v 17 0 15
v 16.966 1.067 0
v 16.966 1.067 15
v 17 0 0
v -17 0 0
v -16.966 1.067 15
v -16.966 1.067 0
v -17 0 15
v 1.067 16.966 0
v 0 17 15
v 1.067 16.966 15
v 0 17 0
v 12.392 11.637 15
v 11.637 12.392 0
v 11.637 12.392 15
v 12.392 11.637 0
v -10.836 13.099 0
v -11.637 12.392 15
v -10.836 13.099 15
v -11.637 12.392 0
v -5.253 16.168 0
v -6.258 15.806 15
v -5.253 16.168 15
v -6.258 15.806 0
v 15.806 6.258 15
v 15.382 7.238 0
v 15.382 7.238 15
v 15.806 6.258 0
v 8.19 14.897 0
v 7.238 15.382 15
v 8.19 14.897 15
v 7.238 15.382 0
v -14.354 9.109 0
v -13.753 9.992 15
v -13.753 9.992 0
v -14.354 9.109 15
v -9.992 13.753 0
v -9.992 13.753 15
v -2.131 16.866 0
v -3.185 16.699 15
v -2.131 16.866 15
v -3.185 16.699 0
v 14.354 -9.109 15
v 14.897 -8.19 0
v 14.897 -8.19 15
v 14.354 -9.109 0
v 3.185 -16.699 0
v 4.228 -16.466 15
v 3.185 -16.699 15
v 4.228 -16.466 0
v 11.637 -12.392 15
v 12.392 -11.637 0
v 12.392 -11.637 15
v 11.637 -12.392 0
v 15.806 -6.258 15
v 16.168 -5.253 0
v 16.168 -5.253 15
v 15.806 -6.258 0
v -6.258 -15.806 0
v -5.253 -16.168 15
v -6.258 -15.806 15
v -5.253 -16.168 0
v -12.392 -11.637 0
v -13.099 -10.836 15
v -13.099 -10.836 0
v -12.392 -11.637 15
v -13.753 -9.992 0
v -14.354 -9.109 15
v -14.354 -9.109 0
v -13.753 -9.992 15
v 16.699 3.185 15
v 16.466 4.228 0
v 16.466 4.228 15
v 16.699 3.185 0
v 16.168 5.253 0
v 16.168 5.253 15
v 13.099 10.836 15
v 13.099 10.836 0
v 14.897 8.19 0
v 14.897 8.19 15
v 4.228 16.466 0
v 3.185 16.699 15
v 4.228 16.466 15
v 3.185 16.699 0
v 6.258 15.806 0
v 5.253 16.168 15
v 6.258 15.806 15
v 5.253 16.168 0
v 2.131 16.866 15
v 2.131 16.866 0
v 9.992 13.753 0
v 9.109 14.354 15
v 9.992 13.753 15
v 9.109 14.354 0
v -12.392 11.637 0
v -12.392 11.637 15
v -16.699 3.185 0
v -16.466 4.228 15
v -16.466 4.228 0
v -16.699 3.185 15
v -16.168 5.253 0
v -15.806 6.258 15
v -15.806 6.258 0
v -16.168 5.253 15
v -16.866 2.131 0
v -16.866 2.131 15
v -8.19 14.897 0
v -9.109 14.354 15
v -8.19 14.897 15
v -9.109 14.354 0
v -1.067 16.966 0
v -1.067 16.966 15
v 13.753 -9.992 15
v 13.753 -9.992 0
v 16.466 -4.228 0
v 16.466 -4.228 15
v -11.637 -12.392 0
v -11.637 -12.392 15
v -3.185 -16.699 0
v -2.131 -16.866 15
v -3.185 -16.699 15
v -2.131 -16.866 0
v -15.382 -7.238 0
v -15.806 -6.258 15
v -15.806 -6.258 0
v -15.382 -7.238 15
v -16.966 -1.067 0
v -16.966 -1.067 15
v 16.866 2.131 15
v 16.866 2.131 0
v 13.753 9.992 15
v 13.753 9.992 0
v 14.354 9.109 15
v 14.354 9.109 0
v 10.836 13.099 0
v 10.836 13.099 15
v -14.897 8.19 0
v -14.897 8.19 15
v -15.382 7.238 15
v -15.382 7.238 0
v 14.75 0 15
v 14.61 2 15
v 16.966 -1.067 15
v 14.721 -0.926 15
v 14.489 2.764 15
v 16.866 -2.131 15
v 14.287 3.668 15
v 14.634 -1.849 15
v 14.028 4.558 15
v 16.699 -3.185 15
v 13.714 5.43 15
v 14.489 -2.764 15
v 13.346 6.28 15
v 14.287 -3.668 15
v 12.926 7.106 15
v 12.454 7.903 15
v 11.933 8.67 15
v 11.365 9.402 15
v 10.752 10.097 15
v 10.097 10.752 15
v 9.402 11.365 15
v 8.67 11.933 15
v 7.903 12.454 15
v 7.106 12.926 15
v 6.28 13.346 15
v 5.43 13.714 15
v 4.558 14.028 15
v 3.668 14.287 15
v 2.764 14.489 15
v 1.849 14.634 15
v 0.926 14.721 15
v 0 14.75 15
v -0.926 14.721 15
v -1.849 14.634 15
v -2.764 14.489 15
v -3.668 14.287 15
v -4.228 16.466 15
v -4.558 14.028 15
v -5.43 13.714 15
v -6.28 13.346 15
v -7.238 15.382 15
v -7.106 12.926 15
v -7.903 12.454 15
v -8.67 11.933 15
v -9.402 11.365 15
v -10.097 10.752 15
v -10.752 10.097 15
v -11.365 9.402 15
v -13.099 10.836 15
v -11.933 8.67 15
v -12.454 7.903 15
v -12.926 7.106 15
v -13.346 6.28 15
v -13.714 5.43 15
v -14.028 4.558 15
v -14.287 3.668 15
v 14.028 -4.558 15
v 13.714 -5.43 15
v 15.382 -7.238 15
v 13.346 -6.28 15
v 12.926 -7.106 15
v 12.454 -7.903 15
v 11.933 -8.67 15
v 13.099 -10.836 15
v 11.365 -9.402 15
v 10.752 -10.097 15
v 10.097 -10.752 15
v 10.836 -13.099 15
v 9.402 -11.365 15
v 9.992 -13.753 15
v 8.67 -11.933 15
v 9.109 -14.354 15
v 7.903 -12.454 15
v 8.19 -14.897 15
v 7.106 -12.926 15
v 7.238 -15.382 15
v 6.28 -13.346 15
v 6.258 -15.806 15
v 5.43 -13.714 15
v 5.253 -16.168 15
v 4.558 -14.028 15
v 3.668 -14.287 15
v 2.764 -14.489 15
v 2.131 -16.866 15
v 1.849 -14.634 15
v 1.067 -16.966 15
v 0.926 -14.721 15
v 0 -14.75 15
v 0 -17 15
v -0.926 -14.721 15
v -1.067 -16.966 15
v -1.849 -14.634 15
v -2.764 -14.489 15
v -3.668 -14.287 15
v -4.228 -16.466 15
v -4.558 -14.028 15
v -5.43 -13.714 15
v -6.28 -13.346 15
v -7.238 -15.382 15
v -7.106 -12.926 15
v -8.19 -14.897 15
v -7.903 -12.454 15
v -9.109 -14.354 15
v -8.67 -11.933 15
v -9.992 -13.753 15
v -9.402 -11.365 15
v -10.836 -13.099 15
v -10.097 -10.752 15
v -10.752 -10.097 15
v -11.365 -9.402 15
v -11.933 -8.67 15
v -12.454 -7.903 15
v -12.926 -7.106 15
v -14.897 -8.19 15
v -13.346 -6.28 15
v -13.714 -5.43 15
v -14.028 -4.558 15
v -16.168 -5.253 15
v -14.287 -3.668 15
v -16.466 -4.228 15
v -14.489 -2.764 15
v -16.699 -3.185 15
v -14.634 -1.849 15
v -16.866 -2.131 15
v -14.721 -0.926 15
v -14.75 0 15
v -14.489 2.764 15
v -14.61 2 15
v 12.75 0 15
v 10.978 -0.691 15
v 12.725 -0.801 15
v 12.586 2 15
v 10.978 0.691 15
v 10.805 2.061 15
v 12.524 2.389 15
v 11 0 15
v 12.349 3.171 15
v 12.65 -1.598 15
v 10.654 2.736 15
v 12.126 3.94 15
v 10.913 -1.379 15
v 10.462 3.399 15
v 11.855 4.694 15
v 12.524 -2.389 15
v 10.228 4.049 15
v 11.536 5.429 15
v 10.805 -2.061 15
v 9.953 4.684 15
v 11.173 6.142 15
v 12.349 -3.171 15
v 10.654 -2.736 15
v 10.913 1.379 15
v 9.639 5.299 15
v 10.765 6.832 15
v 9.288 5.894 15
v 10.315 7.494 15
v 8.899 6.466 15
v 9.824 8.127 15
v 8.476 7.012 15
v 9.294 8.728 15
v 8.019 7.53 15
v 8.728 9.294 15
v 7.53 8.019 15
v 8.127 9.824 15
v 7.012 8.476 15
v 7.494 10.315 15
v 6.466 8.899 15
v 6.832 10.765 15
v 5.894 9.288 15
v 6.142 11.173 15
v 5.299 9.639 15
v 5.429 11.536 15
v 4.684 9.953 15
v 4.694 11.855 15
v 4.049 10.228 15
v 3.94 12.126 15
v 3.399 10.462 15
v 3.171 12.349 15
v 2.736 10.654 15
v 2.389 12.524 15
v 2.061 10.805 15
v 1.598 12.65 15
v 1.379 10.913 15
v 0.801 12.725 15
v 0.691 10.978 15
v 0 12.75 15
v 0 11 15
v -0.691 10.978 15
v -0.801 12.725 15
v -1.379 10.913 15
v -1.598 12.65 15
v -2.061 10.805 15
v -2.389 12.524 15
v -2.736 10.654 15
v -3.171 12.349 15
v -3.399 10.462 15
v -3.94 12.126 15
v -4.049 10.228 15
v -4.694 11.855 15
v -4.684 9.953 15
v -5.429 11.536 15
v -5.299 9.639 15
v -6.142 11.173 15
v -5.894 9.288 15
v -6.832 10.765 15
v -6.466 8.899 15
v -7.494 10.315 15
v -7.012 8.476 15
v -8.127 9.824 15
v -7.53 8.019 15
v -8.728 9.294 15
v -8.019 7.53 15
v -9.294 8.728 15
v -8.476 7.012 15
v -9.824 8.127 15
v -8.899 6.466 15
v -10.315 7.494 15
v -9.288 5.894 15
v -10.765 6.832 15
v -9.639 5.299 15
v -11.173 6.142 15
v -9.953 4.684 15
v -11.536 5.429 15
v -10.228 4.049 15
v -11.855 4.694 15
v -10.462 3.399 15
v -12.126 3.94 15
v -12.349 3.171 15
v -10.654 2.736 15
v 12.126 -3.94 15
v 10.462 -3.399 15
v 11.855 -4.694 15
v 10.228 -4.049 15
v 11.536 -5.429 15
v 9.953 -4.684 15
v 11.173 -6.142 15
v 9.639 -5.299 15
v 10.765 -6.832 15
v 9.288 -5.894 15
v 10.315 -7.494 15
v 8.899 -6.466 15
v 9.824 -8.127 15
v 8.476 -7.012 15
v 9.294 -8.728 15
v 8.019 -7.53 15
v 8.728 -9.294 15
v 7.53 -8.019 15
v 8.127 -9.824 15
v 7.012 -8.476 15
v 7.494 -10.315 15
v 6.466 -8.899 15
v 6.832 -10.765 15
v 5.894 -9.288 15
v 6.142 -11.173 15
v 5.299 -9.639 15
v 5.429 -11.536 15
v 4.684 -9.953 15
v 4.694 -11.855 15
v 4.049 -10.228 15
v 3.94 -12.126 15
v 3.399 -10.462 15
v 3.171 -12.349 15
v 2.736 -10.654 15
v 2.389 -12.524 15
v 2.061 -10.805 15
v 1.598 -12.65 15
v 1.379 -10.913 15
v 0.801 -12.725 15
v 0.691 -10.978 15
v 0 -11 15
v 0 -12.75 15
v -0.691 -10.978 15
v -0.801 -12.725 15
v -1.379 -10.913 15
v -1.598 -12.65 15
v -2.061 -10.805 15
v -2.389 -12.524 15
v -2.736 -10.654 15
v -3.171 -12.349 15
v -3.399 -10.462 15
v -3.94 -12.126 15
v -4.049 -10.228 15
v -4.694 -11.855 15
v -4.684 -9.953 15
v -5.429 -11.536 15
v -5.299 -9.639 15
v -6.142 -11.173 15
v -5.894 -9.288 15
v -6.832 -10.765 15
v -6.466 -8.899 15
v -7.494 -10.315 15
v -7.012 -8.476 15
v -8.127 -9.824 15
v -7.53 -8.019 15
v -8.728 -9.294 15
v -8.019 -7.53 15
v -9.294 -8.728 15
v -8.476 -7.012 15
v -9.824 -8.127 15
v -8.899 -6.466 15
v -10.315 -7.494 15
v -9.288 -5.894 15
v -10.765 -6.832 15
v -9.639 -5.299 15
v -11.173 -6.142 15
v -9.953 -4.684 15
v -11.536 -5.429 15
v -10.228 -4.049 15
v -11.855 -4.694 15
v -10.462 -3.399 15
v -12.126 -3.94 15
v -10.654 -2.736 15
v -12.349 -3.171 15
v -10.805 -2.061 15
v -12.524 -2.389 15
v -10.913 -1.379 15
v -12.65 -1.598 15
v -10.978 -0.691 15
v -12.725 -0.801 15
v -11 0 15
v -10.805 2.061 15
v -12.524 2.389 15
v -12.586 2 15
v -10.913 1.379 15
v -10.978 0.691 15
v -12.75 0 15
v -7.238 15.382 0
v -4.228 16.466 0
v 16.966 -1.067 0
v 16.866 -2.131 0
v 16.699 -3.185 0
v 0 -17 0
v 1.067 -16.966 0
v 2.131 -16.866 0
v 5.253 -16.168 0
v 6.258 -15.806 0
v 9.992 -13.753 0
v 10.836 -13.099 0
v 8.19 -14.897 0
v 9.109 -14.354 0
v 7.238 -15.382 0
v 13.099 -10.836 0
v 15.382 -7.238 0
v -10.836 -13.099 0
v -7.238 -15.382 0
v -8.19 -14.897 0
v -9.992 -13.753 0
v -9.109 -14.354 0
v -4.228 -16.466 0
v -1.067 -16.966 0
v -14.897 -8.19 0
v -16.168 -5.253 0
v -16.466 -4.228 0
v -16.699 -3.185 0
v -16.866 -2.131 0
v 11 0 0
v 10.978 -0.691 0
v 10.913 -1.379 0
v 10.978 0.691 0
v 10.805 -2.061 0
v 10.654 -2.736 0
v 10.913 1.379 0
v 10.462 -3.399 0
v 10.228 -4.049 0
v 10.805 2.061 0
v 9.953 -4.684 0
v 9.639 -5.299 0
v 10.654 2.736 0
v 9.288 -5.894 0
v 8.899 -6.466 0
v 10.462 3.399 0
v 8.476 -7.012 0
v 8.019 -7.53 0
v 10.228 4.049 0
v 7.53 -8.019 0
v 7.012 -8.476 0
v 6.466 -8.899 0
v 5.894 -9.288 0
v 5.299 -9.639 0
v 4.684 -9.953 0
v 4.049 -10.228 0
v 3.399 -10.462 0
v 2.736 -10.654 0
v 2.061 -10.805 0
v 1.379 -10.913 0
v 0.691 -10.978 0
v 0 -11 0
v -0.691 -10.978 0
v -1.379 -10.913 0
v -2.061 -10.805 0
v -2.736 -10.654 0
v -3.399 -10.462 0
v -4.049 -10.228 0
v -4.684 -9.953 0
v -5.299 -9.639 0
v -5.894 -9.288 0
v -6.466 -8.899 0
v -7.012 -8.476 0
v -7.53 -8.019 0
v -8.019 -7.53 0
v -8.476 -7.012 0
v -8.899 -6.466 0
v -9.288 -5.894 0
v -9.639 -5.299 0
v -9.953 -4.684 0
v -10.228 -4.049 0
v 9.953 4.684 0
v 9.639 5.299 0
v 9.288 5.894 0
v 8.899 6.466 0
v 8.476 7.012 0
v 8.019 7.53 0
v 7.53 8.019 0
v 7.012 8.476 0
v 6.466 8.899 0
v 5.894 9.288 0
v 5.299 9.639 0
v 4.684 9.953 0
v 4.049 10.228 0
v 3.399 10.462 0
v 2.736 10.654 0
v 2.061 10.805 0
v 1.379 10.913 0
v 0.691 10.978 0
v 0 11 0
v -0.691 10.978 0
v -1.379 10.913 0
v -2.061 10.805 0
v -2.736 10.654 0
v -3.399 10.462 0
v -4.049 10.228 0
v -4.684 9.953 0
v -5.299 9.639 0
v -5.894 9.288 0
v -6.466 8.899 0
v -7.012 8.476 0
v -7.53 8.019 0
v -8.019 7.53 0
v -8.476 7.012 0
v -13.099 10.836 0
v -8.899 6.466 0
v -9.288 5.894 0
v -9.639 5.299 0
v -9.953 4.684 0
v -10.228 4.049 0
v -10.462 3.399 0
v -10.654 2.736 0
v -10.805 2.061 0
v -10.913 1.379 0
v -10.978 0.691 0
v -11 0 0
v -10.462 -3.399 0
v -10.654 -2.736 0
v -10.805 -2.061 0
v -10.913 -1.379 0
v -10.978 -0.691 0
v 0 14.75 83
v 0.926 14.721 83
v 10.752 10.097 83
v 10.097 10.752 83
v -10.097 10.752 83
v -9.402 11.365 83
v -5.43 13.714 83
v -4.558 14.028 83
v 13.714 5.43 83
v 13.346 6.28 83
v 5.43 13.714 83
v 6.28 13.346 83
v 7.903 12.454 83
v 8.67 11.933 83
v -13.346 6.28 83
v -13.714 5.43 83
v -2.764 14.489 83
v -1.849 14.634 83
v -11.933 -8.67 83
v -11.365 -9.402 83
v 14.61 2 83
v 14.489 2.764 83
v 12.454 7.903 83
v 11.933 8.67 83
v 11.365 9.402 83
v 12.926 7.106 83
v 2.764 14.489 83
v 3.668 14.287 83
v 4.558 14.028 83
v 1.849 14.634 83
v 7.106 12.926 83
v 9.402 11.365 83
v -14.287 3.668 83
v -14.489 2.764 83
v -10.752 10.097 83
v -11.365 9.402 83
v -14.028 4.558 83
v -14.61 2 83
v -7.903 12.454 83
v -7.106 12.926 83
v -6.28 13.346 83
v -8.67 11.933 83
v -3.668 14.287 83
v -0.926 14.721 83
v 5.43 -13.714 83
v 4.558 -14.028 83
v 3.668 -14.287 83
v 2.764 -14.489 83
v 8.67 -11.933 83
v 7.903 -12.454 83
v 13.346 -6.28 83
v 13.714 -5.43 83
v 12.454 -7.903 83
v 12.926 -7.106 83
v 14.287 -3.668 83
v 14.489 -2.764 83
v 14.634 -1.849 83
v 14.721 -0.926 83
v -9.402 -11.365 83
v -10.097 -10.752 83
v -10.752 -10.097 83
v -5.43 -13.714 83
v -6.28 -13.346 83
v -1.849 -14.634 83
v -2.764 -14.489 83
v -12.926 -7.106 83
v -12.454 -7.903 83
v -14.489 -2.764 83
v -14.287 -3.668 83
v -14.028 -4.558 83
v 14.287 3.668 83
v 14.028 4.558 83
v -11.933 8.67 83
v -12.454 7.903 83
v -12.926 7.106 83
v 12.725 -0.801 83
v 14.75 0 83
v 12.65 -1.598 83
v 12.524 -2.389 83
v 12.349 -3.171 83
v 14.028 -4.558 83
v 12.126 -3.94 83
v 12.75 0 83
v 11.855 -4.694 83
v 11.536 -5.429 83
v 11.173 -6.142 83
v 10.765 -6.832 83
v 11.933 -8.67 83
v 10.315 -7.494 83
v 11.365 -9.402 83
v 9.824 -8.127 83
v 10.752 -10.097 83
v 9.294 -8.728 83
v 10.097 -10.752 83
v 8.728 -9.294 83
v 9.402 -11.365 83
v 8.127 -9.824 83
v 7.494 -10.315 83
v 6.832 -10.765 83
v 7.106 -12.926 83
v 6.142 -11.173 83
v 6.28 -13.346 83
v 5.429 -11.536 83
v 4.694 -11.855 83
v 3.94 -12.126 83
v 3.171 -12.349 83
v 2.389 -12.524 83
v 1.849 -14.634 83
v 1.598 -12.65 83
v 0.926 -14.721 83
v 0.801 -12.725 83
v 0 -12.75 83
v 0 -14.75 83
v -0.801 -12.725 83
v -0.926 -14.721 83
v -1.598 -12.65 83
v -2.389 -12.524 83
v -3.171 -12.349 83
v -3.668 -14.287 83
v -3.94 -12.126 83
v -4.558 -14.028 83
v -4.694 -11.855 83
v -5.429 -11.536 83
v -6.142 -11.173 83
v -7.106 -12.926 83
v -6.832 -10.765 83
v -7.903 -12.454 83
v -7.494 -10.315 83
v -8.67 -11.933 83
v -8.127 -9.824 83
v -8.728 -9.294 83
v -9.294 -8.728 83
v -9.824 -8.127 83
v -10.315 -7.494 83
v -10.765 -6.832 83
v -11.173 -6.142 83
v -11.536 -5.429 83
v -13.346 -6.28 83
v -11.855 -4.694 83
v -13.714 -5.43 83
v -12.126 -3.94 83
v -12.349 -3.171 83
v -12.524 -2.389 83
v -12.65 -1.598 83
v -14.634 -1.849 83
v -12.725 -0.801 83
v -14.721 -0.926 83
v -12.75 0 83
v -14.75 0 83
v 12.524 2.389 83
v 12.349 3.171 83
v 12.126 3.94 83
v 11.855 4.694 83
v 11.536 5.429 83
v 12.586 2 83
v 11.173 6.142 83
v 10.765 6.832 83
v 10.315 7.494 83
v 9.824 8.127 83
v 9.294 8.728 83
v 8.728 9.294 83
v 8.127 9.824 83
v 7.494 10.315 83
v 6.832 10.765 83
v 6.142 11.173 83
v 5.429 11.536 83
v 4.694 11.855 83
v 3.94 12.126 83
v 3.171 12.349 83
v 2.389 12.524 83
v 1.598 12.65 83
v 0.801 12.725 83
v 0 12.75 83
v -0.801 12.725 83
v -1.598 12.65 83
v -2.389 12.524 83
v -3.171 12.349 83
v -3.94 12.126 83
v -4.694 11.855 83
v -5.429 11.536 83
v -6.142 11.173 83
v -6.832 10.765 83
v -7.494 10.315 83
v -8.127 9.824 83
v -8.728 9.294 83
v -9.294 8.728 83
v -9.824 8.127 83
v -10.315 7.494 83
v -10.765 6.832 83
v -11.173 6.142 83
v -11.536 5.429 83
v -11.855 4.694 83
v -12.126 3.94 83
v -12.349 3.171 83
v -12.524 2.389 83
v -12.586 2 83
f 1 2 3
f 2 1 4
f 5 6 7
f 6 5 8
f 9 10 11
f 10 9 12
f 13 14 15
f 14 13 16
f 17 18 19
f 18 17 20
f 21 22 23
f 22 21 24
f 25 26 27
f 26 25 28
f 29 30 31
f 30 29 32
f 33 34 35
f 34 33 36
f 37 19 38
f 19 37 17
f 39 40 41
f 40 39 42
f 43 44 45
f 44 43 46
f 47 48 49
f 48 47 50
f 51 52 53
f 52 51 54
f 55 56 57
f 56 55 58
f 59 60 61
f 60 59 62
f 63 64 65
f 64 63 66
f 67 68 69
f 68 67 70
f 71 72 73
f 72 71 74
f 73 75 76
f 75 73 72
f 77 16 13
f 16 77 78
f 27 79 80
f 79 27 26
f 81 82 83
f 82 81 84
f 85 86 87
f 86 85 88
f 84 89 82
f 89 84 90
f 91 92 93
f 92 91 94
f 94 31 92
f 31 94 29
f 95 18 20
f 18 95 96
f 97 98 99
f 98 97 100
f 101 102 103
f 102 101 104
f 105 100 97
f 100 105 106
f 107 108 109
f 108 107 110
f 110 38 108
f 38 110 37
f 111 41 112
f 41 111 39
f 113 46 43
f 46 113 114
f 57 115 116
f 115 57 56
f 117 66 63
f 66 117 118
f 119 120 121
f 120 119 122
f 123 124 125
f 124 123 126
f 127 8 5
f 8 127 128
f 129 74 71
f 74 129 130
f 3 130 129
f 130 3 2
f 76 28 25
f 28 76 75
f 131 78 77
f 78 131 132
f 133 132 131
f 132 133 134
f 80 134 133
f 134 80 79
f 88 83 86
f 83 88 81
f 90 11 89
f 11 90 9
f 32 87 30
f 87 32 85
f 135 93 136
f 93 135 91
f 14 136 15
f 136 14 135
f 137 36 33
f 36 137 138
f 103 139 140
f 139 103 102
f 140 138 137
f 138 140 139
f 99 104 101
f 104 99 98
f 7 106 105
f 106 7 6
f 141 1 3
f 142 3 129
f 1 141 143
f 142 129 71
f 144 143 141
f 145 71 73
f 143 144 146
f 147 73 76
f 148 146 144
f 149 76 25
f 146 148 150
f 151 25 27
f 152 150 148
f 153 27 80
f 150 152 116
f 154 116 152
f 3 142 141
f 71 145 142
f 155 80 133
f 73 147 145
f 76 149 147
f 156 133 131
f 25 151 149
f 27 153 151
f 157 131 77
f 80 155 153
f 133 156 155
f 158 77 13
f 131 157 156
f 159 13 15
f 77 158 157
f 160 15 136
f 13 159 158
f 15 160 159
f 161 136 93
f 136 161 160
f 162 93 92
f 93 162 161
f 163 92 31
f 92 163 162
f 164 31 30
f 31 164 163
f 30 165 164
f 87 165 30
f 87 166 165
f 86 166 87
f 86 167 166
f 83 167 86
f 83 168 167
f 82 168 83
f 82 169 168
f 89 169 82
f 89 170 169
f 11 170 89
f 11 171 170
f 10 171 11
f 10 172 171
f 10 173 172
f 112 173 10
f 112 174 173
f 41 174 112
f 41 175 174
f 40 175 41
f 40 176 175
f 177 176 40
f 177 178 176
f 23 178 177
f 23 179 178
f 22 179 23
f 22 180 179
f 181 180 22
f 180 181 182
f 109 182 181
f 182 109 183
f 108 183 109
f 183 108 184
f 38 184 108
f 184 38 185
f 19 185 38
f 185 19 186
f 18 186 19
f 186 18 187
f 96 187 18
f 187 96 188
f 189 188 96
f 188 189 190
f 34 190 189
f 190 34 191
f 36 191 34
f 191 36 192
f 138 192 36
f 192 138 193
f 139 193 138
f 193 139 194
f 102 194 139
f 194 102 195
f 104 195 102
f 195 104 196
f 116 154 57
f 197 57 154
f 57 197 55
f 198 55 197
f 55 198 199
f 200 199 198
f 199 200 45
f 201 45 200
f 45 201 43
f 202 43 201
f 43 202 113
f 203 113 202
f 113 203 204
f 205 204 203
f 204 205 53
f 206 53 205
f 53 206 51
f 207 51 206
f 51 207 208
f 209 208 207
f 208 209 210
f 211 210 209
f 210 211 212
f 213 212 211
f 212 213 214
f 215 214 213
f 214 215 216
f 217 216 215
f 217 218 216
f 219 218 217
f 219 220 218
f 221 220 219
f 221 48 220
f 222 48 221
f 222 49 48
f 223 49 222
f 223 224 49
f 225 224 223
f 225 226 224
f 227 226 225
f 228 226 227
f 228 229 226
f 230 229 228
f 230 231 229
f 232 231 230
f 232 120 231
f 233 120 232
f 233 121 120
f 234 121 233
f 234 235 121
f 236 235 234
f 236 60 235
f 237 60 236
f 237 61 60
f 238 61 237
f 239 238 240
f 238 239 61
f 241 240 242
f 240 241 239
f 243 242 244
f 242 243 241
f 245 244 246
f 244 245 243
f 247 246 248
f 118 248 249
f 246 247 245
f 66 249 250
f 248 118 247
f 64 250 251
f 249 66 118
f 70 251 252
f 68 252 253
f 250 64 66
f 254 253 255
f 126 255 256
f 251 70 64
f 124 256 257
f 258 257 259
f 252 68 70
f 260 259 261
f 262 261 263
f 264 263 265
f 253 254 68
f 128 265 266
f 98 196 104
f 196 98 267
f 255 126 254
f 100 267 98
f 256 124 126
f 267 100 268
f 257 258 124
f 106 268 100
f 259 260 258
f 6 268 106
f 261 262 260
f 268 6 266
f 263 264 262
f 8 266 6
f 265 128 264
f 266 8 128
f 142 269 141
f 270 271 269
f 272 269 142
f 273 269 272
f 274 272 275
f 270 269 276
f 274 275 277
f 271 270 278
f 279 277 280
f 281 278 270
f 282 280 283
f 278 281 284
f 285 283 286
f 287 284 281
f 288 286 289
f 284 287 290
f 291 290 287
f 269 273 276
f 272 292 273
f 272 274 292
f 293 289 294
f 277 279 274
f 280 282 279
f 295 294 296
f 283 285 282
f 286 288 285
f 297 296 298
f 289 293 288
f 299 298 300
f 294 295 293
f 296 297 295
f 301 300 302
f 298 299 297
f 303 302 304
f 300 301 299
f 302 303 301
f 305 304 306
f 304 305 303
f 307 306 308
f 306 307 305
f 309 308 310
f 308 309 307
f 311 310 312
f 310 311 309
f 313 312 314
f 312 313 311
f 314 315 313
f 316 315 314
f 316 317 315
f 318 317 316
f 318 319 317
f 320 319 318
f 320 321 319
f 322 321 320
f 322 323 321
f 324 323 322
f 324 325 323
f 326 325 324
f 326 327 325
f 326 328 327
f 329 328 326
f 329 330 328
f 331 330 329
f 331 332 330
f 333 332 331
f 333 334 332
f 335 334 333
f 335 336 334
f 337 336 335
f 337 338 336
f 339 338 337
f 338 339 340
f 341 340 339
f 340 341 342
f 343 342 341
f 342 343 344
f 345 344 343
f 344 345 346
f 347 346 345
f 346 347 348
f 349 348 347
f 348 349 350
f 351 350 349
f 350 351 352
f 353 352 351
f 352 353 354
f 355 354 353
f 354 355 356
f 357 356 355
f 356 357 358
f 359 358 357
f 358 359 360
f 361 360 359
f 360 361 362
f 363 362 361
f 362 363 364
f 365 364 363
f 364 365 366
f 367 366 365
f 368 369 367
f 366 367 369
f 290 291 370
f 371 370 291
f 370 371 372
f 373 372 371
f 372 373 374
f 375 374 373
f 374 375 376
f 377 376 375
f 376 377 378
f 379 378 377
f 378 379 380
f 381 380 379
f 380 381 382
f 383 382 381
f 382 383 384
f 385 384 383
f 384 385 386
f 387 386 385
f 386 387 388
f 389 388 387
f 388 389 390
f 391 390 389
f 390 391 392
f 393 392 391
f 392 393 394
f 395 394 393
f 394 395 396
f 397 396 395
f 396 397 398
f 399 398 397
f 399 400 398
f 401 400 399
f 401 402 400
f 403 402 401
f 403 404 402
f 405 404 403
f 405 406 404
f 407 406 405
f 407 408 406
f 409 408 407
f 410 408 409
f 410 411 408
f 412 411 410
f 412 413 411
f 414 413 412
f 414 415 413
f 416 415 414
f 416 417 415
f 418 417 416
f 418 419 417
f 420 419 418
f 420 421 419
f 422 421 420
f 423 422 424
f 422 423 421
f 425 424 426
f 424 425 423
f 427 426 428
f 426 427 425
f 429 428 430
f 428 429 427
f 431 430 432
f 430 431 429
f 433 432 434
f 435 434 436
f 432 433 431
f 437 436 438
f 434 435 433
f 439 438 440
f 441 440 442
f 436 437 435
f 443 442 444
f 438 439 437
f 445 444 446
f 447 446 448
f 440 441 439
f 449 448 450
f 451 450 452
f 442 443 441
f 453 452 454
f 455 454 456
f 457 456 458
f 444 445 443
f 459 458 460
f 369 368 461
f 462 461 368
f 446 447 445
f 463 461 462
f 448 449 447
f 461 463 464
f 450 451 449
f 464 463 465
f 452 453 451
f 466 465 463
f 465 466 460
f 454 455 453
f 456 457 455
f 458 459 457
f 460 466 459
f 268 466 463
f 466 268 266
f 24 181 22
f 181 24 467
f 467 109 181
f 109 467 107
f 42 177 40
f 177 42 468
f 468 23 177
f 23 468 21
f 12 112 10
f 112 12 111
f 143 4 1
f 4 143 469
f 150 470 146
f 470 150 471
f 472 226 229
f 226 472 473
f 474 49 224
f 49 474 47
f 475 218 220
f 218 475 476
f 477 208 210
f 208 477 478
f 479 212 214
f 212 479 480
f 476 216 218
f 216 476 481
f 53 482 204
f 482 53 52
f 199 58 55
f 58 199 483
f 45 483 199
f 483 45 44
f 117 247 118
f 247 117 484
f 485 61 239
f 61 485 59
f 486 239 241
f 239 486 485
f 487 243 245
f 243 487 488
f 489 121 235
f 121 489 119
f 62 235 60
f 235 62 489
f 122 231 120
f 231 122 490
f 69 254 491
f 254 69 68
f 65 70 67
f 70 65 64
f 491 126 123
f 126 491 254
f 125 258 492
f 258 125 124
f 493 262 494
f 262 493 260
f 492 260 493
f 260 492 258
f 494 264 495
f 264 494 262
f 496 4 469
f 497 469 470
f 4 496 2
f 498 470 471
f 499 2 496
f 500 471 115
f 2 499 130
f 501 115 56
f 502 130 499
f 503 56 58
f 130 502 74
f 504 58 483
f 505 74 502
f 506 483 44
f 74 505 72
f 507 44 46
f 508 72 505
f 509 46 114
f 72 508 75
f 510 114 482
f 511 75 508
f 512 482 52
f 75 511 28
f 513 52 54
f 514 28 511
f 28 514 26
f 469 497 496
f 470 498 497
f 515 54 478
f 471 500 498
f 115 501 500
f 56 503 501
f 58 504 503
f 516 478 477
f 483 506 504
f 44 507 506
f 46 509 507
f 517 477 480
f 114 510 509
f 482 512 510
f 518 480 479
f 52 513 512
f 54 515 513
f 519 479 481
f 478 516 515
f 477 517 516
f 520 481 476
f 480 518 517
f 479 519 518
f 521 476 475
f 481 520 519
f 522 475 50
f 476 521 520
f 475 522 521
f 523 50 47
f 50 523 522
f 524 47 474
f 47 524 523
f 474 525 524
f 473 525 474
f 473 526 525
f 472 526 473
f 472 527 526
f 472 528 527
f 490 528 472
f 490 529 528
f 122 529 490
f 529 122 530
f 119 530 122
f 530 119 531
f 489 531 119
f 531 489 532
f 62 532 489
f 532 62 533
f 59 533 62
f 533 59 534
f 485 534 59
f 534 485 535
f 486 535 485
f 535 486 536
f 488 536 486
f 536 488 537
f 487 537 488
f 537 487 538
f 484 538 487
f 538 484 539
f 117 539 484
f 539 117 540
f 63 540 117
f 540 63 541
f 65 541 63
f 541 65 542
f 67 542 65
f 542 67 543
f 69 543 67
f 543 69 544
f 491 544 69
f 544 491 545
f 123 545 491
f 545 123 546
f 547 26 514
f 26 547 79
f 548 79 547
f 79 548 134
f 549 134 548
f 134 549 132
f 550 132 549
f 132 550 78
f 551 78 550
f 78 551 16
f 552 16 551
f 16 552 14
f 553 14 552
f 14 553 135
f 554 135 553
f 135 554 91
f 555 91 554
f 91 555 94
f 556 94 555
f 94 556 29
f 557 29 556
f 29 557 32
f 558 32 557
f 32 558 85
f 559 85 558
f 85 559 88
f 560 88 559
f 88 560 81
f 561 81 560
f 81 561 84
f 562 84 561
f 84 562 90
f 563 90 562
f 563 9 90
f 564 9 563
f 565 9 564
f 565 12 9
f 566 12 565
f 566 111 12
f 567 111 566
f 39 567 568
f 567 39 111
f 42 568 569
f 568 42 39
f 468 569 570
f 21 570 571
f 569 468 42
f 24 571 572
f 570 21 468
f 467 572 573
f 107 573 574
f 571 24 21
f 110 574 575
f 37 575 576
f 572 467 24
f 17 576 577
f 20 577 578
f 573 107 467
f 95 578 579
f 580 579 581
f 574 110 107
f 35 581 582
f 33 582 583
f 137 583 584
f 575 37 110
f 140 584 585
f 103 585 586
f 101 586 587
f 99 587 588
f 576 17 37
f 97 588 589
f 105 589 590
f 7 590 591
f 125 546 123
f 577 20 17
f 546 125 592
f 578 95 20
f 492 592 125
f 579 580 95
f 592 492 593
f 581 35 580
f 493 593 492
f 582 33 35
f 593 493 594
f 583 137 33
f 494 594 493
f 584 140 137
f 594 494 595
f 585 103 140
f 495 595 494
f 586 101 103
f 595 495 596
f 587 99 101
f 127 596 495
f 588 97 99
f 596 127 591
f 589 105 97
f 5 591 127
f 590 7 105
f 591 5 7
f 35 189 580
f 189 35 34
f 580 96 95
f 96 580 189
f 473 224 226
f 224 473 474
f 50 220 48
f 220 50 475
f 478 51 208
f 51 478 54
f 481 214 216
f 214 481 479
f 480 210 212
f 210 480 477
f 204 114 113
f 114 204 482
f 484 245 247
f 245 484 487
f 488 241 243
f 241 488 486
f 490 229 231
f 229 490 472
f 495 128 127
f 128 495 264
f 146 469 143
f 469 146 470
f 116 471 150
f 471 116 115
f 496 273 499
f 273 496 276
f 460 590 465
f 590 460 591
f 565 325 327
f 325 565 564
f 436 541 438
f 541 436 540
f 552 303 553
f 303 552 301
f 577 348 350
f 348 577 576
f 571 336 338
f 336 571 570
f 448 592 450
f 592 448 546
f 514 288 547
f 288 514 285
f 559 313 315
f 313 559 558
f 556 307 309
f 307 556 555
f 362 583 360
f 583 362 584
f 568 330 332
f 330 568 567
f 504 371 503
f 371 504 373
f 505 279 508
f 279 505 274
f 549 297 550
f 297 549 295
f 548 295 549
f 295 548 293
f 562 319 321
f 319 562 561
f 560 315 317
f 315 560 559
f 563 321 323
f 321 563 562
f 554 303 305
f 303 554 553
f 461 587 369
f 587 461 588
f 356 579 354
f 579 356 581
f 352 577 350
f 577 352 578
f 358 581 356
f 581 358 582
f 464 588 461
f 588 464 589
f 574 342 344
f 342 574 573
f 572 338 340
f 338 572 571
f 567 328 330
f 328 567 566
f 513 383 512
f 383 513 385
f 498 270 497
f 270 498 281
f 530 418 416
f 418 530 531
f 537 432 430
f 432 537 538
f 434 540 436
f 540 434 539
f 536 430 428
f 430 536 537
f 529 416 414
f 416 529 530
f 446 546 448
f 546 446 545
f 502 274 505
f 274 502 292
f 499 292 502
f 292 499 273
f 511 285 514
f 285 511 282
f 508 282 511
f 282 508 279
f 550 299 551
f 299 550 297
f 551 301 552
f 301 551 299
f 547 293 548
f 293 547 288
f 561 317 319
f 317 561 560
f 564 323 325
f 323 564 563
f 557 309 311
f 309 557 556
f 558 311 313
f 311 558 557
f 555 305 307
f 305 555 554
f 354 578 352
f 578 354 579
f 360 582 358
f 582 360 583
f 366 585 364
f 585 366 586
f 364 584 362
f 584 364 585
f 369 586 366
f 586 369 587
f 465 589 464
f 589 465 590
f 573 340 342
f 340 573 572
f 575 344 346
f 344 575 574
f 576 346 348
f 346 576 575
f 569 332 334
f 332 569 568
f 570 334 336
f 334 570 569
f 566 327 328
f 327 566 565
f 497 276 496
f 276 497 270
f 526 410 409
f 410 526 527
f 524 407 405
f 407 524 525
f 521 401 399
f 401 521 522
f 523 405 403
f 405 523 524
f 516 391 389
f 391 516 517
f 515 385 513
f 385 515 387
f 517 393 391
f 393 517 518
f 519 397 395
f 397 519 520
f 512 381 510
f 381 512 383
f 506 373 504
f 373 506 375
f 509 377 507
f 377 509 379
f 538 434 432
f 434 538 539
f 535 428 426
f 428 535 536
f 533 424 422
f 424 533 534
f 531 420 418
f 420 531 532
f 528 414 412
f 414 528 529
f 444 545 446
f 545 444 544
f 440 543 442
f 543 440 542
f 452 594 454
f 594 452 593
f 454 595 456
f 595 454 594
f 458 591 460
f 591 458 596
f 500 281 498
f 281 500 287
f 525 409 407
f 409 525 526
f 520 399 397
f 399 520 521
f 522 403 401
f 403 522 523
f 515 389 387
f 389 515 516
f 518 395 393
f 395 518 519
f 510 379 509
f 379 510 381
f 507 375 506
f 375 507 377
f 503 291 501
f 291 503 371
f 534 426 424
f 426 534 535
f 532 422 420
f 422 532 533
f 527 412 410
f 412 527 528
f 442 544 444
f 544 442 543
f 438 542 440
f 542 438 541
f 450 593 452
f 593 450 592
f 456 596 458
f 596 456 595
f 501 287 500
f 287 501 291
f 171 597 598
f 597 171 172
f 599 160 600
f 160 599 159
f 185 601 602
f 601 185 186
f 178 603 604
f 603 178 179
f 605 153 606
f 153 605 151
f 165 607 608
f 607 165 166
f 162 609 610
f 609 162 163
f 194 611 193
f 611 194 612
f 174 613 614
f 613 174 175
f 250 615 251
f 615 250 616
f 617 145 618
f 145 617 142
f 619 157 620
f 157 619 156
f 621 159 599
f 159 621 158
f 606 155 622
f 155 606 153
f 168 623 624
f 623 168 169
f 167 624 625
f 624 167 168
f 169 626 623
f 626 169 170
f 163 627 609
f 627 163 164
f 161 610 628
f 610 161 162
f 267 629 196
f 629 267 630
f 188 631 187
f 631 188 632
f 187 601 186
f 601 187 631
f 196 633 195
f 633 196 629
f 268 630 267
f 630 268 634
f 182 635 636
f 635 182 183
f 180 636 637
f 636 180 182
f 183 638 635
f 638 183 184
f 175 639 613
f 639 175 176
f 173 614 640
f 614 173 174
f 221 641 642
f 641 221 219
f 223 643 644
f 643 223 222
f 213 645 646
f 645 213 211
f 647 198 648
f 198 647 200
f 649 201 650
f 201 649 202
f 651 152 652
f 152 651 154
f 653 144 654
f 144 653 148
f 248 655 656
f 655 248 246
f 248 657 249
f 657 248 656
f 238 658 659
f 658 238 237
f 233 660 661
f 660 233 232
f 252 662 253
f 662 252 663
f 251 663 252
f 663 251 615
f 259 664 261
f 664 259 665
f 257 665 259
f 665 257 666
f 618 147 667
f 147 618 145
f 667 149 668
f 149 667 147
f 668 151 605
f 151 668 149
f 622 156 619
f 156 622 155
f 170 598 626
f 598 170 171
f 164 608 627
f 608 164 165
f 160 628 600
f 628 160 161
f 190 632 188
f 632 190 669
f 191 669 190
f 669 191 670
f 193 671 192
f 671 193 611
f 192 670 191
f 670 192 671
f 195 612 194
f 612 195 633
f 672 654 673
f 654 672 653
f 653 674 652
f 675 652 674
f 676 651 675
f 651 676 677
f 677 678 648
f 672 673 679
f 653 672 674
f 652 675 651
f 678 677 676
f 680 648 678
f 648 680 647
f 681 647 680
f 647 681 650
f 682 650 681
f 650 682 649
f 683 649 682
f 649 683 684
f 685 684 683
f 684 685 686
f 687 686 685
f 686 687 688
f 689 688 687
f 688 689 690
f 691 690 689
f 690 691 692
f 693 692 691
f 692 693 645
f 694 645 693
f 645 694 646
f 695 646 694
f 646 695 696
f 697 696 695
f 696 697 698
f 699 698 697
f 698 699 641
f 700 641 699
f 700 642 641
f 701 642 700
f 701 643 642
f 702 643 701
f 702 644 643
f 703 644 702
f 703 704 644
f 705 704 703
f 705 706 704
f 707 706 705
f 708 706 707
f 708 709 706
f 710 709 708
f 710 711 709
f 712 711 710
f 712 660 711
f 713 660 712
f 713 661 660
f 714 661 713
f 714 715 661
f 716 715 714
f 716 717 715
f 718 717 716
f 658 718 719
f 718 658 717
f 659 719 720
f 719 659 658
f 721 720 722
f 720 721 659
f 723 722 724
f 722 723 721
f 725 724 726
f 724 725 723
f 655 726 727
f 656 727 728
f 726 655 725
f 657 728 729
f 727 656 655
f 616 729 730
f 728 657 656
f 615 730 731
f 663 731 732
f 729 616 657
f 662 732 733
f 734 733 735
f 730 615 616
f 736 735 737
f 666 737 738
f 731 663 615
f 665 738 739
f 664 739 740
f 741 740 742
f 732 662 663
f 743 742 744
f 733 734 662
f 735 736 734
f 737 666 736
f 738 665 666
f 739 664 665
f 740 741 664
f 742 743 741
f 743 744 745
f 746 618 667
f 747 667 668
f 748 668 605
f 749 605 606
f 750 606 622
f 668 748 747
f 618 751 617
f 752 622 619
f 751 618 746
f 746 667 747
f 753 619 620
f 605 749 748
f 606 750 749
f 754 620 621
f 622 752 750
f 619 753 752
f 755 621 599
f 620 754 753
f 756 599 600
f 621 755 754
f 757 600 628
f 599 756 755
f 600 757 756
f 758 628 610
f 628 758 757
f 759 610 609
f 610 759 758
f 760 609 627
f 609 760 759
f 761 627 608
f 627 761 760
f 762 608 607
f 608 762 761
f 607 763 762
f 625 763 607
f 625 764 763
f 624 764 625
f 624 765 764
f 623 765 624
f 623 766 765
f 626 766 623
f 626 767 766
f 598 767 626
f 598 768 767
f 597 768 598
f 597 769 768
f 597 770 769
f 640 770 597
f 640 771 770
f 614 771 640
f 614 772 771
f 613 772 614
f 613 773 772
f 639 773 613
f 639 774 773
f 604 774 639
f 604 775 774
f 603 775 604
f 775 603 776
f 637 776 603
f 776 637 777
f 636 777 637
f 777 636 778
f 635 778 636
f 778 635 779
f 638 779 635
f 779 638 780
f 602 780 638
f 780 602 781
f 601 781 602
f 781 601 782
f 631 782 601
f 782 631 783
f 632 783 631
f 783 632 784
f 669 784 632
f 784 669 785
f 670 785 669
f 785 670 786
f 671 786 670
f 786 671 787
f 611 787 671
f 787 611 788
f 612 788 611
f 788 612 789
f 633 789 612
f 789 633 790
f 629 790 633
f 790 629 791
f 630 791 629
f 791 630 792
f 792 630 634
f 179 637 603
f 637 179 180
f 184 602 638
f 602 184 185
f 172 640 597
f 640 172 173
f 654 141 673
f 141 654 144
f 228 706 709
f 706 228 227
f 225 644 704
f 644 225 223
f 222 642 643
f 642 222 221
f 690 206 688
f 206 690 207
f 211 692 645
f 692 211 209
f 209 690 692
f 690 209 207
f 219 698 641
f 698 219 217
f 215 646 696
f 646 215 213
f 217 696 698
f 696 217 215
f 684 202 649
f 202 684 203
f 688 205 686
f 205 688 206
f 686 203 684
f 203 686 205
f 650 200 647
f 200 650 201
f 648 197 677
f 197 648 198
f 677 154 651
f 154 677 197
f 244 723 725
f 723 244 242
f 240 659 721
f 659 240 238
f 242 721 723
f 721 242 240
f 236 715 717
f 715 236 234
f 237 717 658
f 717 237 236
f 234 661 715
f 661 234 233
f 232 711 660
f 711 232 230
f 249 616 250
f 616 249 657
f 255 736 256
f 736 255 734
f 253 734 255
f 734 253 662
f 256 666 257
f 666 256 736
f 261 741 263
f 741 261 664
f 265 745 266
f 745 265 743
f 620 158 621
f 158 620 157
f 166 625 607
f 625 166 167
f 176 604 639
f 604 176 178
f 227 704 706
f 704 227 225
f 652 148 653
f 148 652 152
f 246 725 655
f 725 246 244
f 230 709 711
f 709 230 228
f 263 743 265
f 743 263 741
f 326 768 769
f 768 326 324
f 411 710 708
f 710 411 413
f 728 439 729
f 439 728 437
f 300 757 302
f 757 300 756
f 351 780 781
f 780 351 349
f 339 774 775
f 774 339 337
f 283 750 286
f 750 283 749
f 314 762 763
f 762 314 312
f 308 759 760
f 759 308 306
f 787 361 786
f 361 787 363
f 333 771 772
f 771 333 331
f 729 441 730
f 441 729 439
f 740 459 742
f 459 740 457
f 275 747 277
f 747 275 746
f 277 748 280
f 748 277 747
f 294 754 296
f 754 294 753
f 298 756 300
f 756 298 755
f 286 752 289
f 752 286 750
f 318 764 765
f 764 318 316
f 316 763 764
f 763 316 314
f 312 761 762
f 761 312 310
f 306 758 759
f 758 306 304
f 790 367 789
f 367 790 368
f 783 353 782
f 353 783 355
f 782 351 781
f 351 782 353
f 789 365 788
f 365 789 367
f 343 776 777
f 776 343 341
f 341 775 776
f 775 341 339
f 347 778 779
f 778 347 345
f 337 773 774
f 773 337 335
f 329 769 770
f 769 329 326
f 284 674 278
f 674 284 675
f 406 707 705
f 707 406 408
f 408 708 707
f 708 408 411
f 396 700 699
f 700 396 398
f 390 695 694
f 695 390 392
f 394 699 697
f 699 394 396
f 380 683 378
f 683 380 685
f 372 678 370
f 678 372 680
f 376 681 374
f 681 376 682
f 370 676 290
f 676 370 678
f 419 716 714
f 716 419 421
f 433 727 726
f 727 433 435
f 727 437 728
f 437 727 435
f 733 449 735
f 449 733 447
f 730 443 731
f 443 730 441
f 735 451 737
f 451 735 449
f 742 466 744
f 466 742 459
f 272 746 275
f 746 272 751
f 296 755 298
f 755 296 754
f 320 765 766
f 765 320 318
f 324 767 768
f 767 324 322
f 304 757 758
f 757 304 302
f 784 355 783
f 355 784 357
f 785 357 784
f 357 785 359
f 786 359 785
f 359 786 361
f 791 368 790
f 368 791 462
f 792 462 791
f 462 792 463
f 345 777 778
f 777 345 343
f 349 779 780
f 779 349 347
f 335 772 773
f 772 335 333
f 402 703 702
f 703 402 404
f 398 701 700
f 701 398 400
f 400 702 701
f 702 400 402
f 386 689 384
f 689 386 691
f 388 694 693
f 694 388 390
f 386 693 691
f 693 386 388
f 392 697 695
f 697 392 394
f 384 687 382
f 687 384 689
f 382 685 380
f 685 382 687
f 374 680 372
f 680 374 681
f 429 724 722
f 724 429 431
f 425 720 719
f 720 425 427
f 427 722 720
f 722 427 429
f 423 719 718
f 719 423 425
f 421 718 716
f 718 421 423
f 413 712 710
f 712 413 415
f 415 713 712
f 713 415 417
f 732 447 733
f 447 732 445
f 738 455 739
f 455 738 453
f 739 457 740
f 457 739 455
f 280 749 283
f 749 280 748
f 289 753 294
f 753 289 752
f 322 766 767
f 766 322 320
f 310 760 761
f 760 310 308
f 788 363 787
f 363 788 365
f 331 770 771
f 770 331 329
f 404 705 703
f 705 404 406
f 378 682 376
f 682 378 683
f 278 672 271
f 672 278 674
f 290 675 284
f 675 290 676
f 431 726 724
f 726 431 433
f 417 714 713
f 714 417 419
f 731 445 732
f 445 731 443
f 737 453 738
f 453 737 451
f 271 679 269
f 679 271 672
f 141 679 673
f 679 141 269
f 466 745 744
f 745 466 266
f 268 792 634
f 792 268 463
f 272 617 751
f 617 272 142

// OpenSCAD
$fn=100;

// this is tuned for a 34mm OD PVC tube (used as the main wand tubes) and a 21mm by 103mm transparent plastic bottle, used as the clear tube

difference() {
    cylinder(d=34,h=15);
    translate([0,0,-0.1])
    cylinder(d=22,h=15.2);
}
translate([0,0,15]) {
    difference() {
        cylinder(d=29.5,h=68);
        translate([0,0,-0.1])
        cylinder(d=25.5,h=68.2);
        translate([-15,0,-0.1])
        cube([30,2,68.2]);
    }
}
